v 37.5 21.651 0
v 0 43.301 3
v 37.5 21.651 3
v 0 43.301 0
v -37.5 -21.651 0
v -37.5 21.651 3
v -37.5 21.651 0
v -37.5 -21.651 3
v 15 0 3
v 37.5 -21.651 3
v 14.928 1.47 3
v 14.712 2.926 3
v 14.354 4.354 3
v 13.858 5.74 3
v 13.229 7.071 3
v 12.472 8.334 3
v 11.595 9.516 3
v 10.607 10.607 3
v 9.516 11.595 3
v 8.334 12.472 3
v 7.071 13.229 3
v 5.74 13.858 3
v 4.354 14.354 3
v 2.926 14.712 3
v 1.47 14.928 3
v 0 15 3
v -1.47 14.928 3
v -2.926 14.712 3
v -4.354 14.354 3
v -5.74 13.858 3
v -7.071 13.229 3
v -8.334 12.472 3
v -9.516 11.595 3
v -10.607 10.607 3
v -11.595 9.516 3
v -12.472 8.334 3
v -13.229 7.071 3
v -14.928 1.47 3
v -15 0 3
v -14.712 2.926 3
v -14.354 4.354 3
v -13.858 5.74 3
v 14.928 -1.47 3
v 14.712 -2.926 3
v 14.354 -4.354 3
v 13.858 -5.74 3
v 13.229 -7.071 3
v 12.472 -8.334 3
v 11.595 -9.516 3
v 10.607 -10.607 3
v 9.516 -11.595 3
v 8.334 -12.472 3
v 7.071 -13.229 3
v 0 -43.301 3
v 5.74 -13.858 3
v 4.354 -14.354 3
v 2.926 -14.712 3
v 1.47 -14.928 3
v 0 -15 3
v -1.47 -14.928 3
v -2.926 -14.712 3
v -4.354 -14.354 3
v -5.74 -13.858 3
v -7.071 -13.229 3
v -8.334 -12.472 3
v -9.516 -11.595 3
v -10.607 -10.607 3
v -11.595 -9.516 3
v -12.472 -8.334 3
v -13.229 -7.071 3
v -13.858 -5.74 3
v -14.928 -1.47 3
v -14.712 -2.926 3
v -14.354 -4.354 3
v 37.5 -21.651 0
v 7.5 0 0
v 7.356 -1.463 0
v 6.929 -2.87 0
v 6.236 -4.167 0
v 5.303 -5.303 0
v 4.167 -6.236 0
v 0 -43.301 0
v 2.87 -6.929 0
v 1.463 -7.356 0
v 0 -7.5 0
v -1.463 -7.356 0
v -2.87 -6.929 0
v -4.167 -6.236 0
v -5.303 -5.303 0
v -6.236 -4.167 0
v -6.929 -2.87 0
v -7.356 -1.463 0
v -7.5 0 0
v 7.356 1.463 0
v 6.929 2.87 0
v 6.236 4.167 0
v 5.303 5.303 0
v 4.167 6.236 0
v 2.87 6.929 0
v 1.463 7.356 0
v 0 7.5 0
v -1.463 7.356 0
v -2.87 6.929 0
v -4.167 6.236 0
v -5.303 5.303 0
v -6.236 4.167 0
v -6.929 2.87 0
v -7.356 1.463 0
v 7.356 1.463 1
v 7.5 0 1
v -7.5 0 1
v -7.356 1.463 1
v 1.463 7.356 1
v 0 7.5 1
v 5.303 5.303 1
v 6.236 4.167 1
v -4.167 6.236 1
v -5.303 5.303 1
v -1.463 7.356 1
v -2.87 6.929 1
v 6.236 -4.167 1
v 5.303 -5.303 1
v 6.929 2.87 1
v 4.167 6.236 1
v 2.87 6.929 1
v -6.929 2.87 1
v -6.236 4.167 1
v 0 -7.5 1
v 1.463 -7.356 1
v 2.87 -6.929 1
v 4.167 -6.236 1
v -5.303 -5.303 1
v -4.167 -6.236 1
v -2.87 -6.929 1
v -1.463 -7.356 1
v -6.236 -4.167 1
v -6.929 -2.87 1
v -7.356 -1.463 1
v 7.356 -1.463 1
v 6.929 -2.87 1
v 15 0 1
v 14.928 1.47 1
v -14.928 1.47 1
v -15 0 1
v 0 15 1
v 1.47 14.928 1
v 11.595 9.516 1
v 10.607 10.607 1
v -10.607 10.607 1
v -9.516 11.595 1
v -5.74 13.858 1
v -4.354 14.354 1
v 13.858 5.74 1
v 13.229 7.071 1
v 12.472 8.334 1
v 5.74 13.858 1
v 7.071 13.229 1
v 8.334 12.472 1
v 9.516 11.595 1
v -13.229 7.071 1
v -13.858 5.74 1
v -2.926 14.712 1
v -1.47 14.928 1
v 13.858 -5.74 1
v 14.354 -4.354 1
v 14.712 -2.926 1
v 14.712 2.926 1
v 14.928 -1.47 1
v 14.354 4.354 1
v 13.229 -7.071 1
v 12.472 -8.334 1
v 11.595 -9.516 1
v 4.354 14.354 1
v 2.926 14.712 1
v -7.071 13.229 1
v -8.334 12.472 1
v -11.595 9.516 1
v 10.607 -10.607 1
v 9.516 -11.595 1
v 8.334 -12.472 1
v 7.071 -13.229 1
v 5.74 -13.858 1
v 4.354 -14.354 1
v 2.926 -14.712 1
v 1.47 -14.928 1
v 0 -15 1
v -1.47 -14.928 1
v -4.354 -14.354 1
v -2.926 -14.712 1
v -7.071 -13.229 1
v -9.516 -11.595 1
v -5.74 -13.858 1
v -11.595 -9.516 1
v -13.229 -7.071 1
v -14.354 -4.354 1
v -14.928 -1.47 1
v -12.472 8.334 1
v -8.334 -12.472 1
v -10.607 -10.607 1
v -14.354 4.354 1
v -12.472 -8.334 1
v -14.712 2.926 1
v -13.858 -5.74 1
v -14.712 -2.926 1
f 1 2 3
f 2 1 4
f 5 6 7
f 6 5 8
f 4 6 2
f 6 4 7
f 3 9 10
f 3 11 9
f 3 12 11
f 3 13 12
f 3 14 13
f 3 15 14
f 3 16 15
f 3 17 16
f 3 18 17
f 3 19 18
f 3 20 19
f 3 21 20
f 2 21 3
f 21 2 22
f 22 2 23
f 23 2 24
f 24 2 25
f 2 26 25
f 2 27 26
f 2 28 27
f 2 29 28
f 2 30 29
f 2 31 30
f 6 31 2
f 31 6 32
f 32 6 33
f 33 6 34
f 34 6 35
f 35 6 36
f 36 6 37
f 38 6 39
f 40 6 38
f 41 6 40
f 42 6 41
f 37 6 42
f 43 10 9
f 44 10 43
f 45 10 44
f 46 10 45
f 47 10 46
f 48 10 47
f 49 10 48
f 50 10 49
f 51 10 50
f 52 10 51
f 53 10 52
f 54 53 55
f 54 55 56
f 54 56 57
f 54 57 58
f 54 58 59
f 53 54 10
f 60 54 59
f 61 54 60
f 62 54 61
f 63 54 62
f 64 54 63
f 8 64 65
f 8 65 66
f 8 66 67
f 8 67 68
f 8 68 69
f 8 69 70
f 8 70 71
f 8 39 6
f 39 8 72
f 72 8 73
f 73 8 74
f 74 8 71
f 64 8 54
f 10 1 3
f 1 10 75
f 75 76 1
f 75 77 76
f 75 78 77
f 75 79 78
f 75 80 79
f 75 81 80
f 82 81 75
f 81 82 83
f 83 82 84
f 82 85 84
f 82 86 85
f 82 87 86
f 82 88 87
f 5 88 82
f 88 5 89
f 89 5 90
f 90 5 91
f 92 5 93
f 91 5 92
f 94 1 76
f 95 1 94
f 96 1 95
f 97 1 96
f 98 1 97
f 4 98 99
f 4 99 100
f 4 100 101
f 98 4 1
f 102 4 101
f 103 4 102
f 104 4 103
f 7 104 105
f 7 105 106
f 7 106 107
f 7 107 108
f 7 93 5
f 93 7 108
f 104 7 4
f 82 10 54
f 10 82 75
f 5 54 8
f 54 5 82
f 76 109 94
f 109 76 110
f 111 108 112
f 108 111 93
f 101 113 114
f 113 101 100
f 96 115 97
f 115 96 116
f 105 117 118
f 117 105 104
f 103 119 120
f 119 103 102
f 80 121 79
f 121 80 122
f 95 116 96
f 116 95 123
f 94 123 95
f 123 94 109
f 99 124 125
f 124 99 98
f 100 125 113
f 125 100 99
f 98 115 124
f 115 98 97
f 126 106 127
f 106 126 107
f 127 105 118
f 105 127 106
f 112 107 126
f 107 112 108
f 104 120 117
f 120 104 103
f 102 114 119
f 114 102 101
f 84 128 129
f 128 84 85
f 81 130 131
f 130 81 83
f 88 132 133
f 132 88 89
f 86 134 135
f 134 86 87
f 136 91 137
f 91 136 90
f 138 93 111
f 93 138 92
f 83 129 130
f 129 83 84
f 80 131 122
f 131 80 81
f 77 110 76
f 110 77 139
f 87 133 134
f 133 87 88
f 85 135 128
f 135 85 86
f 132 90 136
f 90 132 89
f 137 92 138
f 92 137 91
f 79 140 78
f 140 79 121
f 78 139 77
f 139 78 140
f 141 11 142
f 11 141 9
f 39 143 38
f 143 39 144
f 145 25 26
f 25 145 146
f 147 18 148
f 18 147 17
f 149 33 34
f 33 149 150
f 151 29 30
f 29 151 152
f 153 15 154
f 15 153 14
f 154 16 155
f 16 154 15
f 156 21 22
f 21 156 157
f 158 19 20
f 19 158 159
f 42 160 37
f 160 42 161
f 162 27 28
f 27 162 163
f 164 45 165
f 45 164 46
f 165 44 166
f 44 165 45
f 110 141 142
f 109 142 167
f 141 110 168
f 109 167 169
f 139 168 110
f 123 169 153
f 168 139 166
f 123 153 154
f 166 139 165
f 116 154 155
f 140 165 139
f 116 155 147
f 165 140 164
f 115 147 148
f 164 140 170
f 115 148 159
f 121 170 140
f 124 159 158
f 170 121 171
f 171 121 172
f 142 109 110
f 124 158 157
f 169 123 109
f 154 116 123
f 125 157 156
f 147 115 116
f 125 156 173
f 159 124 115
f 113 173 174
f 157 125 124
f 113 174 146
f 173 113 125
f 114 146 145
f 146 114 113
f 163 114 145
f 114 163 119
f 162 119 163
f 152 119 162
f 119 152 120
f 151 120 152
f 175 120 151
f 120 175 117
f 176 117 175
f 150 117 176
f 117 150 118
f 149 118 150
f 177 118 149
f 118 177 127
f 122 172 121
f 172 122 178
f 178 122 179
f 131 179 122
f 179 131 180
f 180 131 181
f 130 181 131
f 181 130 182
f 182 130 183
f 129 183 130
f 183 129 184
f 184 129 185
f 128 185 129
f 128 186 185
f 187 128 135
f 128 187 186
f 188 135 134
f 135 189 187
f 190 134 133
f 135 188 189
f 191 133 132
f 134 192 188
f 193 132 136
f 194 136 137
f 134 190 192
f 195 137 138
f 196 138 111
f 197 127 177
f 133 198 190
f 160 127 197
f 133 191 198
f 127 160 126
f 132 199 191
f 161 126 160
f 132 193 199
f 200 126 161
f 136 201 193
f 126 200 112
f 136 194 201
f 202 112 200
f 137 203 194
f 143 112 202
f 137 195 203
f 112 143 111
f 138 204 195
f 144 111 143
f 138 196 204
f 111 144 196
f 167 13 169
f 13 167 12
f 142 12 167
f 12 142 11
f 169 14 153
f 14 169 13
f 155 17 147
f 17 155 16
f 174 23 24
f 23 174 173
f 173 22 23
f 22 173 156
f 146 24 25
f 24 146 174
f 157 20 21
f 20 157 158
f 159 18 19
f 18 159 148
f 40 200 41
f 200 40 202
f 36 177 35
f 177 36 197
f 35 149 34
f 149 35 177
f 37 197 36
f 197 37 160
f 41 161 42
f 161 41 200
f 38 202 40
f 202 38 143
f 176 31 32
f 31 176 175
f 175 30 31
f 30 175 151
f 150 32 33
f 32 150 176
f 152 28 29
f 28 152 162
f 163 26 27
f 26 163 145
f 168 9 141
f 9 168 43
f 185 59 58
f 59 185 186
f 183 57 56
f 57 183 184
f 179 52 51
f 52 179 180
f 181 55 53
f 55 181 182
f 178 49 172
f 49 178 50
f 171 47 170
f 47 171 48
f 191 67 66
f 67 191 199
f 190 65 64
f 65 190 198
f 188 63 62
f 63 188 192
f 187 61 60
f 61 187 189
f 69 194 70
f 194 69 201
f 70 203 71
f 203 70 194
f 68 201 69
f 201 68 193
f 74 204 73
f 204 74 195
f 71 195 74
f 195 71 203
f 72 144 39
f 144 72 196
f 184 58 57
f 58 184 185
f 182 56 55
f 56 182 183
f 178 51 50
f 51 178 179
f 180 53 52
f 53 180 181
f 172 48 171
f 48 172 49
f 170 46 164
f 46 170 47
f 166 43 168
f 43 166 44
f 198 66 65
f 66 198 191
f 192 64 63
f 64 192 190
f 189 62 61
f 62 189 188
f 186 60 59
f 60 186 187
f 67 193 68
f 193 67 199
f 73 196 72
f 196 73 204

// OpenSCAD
// Catan Hex Tile
// Designed for sticker top and translucent number token

// Tile parameters - should match frame recess
tile_flat_to_flat = 75;
tile_thickness = 3;

// Light hole parameters
light_hole_diameter = 15;

// Token recess parameters
token_diameter = 30;
token_recess_depth = 2;

// Derived values
tile_radius = tile_flat_to_flat / 2 / cos(30);

module hex_tile() {
    difference() {
        // Main hex body
        rotate([0, 0, 30])
            cylinder(r = tile_radius, h = tile_thickness, $fn = 6);
        
        // Light hole through center
        translate([0, 0, -1])
            cylinder(d = light_hole_diameter, h = tile_thickness + 2, $fn = 32);
        
        // Token recess on top
        translate([0, 0, tile_thickness - token_recess_depth])
            cylinder(d = token_diameter, h = token_recess_depth + 1, $fn = 64);
    }
}

hex_tile();
